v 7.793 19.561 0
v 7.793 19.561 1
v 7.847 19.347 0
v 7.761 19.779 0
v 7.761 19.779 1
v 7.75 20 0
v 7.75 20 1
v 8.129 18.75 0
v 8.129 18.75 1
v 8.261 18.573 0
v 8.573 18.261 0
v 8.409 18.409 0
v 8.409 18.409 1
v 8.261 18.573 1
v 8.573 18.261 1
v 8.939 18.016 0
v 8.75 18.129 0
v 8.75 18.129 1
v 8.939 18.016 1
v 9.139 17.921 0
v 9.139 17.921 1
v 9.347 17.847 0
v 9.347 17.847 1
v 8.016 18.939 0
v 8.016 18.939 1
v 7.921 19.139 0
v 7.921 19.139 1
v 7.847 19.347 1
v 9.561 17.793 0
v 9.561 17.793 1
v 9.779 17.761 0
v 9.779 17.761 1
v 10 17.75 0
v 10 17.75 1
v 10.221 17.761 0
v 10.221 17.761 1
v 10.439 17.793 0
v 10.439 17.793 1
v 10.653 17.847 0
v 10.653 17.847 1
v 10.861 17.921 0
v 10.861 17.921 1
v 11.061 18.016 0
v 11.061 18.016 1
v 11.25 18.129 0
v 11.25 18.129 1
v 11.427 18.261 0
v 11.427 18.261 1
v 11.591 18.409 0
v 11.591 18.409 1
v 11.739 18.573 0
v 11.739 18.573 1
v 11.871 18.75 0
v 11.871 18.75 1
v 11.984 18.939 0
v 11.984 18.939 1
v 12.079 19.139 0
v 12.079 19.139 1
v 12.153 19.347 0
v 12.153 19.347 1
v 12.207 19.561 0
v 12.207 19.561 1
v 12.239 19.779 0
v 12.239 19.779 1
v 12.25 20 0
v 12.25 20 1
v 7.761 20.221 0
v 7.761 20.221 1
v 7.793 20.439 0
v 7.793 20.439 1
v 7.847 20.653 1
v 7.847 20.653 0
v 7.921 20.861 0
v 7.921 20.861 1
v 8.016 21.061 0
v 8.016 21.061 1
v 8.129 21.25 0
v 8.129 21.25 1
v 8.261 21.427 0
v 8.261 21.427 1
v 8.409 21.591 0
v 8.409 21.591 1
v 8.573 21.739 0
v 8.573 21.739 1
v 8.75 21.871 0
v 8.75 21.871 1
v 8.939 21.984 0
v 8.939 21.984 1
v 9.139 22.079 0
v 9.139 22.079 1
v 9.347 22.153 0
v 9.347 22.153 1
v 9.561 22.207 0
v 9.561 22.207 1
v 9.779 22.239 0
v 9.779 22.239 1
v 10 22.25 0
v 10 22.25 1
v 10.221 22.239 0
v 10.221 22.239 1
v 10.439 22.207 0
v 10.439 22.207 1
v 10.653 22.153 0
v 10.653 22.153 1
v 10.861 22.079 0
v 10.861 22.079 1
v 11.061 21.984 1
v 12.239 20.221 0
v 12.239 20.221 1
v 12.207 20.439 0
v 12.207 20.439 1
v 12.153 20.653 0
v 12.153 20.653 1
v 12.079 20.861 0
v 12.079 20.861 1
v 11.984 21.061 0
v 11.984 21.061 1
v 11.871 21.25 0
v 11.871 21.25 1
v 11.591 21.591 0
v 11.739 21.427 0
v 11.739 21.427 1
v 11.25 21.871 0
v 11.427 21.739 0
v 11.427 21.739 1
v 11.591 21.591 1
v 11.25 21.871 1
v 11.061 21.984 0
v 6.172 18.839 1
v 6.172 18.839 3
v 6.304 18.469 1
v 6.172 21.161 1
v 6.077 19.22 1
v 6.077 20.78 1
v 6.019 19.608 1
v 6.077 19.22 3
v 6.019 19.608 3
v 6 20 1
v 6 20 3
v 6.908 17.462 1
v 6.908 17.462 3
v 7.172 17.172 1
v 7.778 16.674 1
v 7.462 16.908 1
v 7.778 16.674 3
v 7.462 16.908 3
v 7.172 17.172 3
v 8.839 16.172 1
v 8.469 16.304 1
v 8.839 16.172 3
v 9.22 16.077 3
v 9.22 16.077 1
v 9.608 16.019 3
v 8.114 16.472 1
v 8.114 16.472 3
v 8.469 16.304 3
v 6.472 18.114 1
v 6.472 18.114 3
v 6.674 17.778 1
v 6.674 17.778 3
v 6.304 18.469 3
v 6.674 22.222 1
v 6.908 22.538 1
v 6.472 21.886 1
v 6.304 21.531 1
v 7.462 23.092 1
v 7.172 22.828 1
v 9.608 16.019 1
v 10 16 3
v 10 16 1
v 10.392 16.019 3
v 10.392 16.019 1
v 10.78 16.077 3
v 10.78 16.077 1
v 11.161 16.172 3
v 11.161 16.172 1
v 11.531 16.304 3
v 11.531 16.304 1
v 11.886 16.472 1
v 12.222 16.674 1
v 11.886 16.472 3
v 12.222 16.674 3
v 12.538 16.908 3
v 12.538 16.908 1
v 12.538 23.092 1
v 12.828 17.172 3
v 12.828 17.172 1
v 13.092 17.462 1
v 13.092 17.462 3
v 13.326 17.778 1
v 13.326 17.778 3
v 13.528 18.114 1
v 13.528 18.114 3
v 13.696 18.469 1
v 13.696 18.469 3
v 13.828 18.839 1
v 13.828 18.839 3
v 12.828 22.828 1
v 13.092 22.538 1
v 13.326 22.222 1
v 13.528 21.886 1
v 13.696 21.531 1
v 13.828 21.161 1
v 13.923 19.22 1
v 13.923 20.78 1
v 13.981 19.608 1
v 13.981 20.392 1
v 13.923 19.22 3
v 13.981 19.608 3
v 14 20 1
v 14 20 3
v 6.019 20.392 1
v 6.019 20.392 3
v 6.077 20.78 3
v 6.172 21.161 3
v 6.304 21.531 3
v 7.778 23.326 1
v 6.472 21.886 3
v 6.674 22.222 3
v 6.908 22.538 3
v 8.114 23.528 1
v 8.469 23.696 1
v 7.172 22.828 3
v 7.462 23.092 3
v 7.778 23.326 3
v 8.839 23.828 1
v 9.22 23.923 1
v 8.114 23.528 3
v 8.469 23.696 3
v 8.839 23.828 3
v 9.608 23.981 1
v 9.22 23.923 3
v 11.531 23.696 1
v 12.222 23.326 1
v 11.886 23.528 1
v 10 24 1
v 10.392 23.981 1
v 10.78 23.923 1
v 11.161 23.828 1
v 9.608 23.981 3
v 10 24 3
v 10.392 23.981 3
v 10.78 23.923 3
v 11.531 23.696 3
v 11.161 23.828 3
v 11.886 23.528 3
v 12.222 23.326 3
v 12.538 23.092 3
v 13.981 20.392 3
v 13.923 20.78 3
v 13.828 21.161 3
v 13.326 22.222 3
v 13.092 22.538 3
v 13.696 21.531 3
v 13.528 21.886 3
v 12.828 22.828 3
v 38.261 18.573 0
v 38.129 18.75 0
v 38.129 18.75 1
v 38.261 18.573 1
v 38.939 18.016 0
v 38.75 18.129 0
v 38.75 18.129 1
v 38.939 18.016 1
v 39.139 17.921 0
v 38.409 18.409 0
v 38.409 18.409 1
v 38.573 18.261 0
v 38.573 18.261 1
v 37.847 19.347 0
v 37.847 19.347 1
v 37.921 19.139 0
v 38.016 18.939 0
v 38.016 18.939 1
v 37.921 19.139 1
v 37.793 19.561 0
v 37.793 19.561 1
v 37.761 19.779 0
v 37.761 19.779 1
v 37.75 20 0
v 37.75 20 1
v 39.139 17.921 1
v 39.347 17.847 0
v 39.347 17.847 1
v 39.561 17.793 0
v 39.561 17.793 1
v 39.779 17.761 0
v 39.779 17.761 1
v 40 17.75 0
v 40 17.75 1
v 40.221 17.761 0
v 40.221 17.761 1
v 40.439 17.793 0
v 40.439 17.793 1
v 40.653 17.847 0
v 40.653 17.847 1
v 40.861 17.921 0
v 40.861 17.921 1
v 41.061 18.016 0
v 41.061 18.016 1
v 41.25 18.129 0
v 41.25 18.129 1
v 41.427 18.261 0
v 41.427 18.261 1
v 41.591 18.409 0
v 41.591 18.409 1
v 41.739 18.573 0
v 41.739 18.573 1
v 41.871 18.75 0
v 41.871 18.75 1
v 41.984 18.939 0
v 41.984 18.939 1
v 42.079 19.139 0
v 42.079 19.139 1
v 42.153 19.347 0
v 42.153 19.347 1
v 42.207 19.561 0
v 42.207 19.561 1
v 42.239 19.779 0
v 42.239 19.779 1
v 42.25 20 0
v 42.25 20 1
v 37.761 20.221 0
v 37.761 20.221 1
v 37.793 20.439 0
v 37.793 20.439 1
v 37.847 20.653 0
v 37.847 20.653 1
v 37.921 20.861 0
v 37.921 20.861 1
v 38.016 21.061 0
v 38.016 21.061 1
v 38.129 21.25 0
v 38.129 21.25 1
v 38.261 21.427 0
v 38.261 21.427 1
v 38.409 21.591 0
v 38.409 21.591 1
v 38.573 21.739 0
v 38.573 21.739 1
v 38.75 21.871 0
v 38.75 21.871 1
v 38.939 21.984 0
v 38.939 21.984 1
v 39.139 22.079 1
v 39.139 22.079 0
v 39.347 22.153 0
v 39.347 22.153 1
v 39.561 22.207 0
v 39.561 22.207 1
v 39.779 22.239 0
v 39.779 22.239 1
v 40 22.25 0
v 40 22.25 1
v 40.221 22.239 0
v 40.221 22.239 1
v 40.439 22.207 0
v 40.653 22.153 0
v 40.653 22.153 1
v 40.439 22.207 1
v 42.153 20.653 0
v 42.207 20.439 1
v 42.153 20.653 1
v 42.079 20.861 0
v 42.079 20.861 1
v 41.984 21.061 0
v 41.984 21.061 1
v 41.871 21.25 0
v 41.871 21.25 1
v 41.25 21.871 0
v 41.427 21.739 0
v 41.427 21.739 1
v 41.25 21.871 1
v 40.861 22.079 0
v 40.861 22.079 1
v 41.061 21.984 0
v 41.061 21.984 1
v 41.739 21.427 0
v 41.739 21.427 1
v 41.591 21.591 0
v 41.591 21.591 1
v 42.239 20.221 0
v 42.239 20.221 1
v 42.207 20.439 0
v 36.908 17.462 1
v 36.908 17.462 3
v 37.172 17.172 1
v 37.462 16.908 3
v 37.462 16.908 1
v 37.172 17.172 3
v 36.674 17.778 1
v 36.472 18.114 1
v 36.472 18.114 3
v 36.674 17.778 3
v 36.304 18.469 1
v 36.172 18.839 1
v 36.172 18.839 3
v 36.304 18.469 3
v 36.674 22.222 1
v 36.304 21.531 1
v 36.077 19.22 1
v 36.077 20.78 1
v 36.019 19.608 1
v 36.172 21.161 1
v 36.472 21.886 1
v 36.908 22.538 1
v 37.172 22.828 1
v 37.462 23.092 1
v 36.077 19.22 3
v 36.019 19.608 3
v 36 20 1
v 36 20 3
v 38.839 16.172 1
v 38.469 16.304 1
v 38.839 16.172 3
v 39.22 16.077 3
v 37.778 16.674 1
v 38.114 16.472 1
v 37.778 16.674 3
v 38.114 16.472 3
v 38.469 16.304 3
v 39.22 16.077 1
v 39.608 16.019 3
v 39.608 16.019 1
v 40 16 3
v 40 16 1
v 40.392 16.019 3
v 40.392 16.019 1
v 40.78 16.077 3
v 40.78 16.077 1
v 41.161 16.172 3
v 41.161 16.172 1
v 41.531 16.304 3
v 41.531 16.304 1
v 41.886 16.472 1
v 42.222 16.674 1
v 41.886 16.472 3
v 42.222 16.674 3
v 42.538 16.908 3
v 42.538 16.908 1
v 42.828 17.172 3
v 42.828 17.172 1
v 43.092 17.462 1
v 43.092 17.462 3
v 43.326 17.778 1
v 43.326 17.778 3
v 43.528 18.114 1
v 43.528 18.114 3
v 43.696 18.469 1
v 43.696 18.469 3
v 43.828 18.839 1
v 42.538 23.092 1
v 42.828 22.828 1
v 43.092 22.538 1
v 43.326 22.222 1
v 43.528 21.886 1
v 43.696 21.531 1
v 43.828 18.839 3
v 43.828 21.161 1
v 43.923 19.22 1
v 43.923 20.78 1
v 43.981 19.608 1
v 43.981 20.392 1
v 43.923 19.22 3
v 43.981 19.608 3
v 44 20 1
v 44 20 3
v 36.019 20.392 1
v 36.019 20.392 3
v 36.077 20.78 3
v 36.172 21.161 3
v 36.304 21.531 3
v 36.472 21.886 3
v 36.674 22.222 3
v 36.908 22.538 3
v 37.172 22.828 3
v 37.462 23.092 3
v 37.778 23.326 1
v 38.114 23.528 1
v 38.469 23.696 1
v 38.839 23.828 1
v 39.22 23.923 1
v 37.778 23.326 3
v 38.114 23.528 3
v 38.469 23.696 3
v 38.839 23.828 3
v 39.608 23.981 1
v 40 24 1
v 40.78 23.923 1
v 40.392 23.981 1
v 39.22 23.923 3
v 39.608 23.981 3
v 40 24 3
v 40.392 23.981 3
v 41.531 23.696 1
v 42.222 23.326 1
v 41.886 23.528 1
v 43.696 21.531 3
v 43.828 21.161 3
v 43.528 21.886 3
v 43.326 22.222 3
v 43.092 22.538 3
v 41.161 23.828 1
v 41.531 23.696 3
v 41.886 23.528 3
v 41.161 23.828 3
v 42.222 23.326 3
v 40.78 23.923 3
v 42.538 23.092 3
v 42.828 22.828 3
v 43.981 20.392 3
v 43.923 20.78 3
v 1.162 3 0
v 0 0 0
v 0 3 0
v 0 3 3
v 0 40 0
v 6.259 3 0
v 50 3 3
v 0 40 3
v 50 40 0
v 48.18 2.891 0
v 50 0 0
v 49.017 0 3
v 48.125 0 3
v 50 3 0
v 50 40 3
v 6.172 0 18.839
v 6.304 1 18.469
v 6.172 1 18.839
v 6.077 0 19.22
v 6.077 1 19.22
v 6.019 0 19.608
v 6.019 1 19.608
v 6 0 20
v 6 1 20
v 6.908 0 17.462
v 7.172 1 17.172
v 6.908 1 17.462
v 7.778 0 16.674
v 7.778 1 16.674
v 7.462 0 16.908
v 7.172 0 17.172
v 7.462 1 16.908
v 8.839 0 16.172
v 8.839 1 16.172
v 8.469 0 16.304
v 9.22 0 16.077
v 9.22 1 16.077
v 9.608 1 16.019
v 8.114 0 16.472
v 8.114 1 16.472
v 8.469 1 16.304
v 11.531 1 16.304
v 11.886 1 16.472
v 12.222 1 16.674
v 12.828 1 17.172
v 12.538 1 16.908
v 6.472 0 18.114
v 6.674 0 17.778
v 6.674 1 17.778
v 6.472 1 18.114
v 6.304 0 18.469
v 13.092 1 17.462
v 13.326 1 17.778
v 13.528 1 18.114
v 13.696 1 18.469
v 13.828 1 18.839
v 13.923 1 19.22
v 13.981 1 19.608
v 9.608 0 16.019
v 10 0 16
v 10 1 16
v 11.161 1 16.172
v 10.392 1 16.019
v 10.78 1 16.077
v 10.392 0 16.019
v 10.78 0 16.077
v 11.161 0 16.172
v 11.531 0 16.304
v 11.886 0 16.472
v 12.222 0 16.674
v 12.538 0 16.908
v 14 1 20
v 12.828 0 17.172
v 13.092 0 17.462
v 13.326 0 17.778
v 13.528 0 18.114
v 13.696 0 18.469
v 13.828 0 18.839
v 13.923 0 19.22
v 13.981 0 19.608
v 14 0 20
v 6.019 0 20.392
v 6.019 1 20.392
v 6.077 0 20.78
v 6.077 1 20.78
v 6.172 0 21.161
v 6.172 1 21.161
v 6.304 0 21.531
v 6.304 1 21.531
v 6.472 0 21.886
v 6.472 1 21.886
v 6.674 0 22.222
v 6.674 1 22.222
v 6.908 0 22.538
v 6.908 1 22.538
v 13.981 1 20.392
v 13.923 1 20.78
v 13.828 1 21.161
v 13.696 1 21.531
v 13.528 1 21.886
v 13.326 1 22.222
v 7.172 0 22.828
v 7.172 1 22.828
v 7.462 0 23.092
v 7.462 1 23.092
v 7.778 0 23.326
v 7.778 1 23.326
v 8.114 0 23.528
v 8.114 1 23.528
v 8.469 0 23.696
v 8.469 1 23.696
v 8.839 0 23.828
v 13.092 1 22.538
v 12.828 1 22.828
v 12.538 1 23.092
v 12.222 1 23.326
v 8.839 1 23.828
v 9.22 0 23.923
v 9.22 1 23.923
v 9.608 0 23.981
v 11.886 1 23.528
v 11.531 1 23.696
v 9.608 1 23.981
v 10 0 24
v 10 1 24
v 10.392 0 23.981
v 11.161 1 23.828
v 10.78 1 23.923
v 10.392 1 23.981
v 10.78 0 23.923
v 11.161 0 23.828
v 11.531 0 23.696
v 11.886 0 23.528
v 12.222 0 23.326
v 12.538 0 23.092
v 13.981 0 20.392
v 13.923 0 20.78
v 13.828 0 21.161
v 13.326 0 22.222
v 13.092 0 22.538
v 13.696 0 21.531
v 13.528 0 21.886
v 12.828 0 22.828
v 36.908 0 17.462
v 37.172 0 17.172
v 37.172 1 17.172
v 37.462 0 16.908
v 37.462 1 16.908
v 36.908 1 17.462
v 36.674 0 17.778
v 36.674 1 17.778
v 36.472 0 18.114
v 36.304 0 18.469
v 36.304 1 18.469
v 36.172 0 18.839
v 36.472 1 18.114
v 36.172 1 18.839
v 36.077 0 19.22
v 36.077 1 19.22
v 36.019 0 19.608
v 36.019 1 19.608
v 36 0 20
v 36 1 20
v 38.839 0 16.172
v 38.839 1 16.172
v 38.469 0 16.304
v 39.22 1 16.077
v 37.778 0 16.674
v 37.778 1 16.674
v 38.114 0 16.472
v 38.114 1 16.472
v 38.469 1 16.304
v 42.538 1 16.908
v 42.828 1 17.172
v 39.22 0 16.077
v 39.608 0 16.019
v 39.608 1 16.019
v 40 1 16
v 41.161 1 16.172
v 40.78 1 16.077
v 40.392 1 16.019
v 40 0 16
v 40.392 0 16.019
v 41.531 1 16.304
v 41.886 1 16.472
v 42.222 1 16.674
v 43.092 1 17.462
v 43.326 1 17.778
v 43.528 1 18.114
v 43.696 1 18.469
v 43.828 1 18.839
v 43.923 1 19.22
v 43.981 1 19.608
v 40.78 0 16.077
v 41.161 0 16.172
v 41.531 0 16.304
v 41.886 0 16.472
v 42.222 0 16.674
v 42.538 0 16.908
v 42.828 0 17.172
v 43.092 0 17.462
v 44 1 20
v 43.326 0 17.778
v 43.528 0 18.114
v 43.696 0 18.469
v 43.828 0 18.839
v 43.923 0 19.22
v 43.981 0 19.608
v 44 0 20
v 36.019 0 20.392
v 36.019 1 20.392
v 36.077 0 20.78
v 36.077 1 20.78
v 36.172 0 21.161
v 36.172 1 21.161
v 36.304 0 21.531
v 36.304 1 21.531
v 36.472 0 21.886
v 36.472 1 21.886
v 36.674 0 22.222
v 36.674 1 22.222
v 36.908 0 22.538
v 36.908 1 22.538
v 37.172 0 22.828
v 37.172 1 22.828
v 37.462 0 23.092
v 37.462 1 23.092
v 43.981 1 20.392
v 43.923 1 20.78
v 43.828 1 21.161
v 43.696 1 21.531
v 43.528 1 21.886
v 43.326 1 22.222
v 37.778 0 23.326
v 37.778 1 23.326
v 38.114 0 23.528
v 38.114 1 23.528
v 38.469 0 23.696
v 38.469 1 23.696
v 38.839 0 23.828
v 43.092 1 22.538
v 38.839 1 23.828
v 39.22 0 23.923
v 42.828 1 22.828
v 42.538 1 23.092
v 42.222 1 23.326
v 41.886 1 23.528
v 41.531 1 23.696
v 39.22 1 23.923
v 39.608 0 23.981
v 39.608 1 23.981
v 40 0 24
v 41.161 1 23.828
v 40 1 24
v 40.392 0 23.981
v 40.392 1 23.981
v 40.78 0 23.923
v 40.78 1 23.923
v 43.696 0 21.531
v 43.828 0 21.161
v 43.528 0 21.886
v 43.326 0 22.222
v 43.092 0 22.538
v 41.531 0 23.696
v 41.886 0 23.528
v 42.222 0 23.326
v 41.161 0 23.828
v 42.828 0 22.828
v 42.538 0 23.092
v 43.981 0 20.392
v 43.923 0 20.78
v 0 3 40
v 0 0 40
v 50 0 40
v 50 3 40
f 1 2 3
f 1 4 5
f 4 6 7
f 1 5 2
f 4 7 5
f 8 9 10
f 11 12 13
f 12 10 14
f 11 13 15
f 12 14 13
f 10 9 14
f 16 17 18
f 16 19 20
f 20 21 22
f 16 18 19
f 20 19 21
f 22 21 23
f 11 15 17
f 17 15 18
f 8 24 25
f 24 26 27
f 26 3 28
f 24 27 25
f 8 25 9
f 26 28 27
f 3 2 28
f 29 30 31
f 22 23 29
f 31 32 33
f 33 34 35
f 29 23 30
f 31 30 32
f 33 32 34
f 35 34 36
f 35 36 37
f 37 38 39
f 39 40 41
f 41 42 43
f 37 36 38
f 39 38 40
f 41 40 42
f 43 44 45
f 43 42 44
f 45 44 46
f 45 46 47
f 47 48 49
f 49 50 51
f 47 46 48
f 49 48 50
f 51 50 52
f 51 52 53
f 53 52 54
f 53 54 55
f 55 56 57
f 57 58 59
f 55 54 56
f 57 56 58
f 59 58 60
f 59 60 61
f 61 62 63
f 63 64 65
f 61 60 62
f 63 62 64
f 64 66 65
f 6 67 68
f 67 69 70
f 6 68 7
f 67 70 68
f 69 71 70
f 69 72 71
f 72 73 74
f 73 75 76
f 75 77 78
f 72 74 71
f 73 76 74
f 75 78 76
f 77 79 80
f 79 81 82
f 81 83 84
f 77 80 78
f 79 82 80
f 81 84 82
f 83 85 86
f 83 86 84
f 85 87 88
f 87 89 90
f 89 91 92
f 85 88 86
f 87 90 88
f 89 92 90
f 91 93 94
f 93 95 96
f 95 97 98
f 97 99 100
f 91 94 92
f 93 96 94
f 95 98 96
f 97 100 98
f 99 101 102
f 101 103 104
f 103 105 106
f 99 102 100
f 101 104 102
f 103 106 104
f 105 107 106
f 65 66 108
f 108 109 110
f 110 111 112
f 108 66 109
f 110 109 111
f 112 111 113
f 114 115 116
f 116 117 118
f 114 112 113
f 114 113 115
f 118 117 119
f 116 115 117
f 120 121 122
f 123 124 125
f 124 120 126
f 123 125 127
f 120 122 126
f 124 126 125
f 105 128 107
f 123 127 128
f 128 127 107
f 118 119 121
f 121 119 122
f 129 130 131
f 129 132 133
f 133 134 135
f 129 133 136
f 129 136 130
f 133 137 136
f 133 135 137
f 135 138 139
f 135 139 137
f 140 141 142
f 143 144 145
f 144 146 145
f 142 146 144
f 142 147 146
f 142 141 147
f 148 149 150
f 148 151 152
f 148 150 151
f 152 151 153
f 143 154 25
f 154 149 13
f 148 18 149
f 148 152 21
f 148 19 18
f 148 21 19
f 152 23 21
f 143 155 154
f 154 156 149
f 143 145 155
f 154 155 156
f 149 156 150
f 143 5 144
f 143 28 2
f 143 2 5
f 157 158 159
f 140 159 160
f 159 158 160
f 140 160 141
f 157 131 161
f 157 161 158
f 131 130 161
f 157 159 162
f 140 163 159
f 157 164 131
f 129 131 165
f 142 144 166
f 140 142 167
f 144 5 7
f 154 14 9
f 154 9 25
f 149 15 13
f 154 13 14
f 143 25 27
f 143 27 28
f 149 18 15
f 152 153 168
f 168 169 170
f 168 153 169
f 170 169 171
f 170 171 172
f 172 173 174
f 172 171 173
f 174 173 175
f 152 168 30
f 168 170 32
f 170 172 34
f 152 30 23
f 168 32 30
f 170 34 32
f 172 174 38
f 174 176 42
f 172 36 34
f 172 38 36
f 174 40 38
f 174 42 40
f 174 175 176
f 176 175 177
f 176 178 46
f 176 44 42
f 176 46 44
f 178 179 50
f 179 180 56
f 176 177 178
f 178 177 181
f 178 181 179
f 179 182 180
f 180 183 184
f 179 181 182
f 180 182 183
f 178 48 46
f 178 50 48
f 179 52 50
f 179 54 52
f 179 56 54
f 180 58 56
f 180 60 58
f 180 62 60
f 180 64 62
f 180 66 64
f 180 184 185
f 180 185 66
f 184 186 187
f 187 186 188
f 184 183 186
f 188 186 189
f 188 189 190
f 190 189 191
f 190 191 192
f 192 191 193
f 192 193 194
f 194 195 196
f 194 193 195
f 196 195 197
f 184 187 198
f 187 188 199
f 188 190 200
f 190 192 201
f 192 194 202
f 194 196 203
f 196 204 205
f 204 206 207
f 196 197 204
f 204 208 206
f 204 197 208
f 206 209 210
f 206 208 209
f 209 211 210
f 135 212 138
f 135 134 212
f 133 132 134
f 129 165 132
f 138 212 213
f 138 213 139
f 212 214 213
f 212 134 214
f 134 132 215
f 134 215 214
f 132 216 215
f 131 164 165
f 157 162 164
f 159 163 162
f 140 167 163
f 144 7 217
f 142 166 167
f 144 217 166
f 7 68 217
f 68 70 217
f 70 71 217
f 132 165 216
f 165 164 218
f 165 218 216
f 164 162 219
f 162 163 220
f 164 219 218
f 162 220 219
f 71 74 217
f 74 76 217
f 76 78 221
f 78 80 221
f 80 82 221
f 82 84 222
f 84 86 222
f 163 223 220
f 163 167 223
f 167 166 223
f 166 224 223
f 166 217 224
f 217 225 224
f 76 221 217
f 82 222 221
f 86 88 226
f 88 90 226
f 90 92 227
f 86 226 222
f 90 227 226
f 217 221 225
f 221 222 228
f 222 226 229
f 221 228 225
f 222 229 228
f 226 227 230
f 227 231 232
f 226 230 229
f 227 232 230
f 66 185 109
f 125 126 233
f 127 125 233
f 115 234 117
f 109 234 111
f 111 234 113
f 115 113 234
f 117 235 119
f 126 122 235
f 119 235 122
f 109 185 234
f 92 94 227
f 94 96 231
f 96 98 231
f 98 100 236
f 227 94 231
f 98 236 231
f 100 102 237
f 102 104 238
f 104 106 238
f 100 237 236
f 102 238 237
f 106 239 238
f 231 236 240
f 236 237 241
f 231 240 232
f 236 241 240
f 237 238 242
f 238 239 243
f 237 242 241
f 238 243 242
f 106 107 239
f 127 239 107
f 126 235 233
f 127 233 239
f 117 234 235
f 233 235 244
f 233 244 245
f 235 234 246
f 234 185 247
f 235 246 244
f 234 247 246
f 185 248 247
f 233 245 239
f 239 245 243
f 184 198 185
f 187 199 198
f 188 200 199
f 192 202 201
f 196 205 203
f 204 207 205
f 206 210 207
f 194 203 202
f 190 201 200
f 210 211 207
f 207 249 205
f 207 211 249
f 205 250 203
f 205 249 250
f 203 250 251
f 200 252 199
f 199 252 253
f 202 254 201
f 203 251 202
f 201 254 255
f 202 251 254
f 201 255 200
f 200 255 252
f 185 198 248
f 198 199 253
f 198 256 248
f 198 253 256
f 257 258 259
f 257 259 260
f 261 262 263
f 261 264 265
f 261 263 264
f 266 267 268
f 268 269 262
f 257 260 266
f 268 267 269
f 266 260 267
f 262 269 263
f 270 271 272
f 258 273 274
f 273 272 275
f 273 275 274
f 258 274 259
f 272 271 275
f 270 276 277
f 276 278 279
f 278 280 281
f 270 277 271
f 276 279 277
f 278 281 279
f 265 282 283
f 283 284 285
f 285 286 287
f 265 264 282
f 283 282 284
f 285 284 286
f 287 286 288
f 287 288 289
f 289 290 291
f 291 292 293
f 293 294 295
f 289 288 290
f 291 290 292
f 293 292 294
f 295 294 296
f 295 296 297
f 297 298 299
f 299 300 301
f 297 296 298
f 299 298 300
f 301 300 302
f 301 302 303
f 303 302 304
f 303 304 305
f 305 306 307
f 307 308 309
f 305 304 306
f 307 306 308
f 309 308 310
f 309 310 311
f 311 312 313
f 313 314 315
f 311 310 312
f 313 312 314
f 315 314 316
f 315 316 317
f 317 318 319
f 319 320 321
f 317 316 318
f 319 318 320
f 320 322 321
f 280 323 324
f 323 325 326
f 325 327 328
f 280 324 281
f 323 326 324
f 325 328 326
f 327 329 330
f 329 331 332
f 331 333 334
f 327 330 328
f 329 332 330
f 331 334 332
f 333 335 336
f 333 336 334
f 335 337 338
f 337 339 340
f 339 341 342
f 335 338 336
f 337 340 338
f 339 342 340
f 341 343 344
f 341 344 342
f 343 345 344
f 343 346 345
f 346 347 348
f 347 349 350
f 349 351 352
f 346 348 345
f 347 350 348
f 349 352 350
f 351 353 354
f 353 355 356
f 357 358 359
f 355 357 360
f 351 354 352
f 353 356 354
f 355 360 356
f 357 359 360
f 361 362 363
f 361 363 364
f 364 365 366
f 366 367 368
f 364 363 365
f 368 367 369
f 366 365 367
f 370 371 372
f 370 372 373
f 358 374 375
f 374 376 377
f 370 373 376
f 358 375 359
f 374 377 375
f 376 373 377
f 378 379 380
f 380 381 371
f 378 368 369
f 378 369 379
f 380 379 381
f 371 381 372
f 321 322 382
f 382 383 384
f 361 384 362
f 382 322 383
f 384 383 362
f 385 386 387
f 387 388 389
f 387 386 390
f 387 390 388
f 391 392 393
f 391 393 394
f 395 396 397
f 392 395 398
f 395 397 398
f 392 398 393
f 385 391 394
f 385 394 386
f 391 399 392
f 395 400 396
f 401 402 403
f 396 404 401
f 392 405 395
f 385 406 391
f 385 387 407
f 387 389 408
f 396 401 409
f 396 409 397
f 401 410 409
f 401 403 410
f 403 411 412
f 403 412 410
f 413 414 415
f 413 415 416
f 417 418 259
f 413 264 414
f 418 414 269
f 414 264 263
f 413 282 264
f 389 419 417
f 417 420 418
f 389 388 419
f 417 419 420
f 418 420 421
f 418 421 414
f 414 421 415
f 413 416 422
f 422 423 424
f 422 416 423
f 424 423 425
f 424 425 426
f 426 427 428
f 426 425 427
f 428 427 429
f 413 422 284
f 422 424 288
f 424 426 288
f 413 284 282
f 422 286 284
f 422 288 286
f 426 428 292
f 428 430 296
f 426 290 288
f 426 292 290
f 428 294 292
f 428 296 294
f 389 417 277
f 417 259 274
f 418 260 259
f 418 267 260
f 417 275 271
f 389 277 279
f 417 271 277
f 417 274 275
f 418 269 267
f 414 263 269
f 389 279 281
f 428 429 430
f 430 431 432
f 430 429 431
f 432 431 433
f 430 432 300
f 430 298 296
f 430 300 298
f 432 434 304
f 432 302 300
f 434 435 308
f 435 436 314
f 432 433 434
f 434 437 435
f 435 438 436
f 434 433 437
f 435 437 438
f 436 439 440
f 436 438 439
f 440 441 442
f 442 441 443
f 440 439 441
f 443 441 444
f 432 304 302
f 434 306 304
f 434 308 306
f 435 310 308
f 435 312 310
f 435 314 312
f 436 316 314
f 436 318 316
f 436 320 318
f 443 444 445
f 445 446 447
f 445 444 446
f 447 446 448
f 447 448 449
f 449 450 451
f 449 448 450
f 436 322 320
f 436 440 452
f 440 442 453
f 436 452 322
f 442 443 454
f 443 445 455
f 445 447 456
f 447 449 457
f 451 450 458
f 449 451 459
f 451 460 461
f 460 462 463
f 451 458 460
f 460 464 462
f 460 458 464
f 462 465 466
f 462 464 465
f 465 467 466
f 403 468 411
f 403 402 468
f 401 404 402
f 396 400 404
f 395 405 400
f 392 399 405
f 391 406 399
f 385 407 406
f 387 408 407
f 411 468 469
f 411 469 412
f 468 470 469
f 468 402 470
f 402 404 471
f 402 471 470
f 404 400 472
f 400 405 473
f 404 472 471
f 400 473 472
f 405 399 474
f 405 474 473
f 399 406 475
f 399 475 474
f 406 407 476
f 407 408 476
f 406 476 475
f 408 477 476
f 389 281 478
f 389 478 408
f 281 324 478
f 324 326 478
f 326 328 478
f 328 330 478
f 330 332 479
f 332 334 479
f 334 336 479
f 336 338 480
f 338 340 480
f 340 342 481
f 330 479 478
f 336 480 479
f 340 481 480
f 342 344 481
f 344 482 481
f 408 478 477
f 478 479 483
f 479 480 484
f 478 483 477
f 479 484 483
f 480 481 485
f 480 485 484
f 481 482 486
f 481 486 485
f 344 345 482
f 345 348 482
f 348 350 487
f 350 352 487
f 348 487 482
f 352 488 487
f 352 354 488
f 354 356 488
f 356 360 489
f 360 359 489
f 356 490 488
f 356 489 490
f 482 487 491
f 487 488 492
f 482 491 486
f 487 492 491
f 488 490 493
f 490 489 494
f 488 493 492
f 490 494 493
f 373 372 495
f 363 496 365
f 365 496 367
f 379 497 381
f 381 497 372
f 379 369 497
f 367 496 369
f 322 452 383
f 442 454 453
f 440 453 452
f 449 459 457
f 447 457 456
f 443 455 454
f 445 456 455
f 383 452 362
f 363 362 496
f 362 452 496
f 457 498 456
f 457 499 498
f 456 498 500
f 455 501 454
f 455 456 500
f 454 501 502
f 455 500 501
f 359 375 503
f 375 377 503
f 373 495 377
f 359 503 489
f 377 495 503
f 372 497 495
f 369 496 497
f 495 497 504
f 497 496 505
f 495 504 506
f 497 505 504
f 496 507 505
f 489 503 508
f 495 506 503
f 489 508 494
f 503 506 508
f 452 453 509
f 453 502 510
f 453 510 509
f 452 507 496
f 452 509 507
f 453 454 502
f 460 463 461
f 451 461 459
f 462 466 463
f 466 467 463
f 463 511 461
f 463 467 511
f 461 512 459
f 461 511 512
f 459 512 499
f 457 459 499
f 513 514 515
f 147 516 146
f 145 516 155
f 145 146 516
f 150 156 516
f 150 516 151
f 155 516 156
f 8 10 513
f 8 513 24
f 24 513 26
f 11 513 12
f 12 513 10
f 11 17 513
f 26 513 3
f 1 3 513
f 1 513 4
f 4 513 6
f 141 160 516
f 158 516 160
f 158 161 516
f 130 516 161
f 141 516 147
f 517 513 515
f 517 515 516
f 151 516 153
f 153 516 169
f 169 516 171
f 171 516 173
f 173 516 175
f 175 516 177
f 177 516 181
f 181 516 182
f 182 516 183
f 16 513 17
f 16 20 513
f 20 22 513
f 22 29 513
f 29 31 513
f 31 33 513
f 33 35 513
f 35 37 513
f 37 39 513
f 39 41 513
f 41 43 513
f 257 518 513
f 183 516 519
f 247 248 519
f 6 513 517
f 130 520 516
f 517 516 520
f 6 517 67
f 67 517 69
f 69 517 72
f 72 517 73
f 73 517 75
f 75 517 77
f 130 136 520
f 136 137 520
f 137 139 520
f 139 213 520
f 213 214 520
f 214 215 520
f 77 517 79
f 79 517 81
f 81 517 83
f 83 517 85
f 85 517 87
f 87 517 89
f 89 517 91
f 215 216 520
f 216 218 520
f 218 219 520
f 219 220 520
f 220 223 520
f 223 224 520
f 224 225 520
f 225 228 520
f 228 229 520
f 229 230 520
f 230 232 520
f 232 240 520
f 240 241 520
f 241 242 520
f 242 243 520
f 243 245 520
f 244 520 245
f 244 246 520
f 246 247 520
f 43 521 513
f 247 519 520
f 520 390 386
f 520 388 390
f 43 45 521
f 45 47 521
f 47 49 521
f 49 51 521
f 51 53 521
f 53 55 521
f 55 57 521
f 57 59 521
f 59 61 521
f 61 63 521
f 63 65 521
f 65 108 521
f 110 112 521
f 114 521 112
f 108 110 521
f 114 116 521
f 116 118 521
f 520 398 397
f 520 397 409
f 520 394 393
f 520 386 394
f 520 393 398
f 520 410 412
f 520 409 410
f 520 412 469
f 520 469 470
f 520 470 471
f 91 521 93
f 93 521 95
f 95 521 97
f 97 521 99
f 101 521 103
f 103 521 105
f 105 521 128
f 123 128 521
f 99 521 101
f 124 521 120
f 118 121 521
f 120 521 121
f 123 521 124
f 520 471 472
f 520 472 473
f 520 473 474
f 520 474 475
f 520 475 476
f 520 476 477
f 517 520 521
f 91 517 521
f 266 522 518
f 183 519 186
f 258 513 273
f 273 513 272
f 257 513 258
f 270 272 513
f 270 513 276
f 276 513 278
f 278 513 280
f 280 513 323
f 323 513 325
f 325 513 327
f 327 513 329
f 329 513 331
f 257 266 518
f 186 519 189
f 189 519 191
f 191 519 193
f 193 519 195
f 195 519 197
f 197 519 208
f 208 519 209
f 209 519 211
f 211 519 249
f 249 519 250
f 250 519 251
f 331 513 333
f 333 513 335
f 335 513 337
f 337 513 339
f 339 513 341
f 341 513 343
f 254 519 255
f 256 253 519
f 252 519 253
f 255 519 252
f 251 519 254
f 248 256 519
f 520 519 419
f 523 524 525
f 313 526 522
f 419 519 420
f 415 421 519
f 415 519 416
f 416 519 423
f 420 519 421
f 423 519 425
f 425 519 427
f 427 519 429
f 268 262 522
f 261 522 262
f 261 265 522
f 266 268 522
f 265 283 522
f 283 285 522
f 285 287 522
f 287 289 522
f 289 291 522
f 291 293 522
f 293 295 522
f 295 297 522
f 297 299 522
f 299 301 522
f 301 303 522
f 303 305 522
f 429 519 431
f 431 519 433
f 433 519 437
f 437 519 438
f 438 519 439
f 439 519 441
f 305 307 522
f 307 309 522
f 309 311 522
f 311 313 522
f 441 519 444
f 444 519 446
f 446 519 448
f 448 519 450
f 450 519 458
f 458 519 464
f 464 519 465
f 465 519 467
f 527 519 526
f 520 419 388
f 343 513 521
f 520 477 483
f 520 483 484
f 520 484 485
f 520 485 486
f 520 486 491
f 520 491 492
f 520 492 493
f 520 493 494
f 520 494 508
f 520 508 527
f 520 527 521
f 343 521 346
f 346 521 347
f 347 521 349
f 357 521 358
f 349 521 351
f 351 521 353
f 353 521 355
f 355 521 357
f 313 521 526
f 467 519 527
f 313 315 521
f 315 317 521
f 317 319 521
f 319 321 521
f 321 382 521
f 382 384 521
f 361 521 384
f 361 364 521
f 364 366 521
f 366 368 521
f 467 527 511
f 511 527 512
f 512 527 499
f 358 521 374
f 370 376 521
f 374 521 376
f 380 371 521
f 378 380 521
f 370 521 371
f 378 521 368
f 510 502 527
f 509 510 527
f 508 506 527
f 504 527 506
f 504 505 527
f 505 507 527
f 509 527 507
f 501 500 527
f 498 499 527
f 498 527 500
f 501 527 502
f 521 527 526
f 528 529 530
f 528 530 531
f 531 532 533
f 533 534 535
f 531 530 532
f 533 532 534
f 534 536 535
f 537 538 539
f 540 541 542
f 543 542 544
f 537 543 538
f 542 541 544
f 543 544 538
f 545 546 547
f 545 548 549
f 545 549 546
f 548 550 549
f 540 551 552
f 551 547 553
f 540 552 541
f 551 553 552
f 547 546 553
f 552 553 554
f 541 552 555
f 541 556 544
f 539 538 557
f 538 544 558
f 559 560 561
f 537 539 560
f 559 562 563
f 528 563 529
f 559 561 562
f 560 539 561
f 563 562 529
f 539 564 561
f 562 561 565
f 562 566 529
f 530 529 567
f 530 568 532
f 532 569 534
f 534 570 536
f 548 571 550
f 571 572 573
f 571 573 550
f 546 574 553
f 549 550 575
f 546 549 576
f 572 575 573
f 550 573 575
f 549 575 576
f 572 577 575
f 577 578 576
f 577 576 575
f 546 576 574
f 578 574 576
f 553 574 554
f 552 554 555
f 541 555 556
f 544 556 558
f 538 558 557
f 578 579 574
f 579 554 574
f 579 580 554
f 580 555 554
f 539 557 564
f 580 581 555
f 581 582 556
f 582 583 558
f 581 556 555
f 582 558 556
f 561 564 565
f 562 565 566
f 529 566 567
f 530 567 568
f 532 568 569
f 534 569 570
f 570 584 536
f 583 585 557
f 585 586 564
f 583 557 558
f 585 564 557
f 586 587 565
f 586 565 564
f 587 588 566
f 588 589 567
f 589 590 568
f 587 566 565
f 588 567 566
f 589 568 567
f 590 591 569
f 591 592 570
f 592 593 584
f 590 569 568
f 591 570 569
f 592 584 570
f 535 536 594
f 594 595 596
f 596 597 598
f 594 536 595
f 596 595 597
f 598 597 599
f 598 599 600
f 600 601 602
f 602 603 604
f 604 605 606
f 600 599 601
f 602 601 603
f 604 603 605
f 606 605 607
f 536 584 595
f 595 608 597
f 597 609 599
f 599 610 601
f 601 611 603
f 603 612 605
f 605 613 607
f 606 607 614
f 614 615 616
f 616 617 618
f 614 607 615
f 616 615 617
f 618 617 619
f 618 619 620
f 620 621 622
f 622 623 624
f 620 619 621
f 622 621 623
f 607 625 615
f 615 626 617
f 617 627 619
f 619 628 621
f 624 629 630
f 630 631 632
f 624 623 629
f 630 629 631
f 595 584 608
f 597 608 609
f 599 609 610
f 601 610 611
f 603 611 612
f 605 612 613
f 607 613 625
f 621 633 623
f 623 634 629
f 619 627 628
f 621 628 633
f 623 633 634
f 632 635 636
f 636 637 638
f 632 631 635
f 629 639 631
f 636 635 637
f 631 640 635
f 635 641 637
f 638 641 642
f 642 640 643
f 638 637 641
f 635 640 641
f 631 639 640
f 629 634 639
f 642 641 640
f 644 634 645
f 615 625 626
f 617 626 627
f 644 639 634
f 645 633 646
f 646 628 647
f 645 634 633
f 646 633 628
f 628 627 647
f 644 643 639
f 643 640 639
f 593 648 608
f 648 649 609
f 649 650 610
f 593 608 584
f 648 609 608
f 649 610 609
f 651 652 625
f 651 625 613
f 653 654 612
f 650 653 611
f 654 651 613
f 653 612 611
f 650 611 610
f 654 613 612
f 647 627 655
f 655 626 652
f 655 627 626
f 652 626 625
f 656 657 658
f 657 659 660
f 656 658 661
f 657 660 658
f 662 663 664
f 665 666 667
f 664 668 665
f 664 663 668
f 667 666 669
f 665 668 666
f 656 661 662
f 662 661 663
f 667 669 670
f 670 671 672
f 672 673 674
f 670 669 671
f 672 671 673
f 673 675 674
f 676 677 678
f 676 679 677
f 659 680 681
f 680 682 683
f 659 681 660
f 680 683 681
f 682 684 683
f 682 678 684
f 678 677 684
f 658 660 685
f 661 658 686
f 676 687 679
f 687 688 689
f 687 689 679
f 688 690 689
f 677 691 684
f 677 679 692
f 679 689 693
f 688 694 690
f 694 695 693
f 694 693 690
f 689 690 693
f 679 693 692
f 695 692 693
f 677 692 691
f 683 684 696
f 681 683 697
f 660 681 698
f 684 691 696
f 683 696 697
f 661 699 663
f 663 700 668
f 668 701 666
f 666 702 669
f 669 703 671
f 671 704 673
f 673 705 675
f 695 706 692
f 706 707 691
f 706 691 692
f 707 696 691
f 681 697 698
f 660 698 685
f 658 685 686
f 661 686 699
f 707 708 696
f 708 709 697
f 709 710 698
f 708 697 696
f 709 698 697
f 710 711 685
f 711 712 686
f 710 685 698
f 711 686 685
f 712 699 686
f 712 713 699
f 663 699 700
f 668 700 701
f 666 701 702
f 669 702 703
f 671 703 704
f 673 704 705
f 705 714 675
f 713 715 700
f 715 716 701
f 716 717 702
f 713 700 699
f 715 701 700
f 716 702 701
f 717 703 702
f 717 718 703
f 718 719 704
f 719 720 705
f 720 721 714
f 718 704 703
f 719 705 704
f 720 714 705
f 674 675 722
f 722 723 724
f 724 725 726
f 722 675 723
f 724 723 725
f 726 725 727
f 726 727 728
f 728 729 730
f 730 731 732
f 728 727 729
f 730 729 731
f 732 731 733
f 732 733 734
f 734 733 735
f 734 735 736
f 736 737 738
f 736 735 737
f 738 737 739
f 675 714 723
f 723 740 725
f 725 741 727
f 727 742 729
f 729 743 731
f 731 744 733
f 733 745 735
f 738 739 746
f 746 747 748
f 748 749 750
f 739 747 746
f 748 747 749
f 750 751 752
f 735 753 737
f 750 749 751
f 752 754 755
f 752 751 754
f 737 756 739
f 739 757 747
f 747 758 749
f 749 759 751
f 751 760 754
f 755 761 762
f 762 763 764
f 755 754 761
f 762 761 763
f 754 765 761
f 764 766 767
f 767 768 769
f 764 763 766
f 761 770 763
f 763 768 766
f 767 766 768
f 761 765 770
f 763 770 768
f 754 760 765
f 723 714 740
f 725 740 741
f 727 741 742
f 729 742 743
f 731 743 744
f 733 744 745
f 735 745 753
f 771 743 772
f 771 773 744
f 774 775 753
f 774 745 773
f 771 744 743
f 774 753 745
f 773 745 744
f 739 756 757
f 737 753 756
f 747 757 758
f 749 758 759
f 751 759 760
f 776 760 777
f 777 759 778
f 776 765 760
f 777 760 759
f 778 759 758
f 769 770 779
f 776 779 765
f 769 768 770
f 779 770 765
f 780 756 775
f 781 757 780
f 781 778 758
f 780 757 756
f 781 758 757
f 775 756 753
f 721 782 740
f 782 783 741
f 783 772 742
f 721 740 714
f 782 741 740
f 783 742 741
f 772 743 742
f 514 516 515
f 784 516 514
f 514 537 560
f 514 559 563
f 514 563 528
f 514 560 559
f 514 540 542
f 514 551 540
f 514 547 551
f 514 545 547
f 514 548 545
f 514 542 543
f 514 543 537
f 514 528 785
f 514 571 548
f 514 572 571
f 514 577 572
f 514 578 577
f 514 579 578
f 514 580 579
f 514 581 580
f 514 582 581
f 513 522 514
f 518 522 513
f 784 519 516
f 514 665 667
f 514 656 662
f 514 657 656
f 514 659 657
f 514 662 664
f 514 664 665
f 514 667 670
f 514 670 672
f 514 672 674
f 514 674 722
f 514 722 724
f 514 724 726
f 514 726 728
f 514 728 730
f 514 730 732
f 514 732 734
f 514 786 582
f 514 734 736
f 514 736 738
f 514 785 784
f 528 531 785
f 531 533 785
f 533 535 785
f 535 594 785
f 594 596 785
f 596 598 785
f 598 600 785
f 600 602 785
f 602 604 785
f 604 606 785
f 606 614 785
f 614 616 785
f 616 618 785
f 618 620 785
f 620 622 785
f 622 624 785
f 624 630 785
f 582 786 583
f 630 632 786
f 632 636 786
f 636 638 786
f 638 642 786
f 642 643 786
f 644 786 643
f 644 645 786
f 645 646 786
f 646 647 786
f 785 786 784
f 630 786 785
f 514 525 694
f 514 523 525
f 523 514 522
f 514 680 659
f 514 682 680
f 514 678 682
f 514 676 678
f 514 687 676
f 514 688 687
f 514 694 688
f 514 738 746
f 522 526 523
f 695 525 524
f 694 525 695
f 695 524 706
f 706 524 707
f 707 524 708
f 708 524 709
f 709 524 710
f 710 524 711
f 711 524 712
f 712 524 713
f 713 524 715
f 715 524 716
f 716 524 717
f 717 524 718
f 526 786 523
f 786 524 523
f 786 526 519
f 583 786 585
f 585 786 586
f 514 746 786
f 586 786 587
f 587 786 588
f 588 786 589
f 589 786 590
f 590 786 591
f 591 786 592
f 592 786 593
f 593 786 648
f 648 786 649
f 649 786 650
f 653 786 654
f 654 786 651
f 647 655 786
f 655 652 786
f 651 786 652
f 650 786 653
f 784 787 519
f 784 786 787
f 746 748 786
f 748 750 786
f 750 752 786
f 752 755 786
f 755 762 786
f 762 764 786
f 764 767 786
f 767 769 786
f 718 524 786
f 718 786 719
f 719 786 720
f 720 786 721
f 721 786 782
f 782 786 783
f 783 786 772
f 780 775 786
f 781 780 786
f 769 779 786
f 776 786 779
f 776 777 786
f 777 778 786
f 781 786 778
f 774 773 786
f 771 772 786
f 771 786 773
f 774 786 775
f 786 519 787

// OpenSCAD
$fn = 64;

thickness = 3;
flange_width = 50;
flange_depth = 40;
flange_height = 40;

through_diameter = 4.5;
countersink_diameter = 8;
countersink_depth = 2;
clearance = 1;

hole_positions = [10, flange_width - 10];

module horizontal_flange() {
    difference() {
        cube([flange_width, flange_depth, thickness]);
        for (x = hole_positions) {
            translate([x, flange_depth / 2, -clearance])
                cylinder(h = thickness + 2 * clearance, r = through_diameter / 2);

            translate([x, flange_depth / 2, thickness - countersink_depth])
                cylinder(h = countersink_depth, r = countersink_diameter / 2);
        }
    }
}

module vertical_flange() {
    difference() {
        cube([flange_width, thickness, flange_height]);
        for (x = hole_positions) {
            translate([x, -clearance, flange_height / 2])
                rotate([90, 0, 0])
                    cylinder(h = thickness + 2 * clearance, r = through_diameter / 2);

            translate([x, thickness - countersink_depth, flange_height / 2])
                rotate([90, 0, 0])
                    cylinder(h = countersink_depth, r = countersink_diameter / 2);
        }
    }
}

union() {
    horizontal_flange();
    vertical_flange();
}
